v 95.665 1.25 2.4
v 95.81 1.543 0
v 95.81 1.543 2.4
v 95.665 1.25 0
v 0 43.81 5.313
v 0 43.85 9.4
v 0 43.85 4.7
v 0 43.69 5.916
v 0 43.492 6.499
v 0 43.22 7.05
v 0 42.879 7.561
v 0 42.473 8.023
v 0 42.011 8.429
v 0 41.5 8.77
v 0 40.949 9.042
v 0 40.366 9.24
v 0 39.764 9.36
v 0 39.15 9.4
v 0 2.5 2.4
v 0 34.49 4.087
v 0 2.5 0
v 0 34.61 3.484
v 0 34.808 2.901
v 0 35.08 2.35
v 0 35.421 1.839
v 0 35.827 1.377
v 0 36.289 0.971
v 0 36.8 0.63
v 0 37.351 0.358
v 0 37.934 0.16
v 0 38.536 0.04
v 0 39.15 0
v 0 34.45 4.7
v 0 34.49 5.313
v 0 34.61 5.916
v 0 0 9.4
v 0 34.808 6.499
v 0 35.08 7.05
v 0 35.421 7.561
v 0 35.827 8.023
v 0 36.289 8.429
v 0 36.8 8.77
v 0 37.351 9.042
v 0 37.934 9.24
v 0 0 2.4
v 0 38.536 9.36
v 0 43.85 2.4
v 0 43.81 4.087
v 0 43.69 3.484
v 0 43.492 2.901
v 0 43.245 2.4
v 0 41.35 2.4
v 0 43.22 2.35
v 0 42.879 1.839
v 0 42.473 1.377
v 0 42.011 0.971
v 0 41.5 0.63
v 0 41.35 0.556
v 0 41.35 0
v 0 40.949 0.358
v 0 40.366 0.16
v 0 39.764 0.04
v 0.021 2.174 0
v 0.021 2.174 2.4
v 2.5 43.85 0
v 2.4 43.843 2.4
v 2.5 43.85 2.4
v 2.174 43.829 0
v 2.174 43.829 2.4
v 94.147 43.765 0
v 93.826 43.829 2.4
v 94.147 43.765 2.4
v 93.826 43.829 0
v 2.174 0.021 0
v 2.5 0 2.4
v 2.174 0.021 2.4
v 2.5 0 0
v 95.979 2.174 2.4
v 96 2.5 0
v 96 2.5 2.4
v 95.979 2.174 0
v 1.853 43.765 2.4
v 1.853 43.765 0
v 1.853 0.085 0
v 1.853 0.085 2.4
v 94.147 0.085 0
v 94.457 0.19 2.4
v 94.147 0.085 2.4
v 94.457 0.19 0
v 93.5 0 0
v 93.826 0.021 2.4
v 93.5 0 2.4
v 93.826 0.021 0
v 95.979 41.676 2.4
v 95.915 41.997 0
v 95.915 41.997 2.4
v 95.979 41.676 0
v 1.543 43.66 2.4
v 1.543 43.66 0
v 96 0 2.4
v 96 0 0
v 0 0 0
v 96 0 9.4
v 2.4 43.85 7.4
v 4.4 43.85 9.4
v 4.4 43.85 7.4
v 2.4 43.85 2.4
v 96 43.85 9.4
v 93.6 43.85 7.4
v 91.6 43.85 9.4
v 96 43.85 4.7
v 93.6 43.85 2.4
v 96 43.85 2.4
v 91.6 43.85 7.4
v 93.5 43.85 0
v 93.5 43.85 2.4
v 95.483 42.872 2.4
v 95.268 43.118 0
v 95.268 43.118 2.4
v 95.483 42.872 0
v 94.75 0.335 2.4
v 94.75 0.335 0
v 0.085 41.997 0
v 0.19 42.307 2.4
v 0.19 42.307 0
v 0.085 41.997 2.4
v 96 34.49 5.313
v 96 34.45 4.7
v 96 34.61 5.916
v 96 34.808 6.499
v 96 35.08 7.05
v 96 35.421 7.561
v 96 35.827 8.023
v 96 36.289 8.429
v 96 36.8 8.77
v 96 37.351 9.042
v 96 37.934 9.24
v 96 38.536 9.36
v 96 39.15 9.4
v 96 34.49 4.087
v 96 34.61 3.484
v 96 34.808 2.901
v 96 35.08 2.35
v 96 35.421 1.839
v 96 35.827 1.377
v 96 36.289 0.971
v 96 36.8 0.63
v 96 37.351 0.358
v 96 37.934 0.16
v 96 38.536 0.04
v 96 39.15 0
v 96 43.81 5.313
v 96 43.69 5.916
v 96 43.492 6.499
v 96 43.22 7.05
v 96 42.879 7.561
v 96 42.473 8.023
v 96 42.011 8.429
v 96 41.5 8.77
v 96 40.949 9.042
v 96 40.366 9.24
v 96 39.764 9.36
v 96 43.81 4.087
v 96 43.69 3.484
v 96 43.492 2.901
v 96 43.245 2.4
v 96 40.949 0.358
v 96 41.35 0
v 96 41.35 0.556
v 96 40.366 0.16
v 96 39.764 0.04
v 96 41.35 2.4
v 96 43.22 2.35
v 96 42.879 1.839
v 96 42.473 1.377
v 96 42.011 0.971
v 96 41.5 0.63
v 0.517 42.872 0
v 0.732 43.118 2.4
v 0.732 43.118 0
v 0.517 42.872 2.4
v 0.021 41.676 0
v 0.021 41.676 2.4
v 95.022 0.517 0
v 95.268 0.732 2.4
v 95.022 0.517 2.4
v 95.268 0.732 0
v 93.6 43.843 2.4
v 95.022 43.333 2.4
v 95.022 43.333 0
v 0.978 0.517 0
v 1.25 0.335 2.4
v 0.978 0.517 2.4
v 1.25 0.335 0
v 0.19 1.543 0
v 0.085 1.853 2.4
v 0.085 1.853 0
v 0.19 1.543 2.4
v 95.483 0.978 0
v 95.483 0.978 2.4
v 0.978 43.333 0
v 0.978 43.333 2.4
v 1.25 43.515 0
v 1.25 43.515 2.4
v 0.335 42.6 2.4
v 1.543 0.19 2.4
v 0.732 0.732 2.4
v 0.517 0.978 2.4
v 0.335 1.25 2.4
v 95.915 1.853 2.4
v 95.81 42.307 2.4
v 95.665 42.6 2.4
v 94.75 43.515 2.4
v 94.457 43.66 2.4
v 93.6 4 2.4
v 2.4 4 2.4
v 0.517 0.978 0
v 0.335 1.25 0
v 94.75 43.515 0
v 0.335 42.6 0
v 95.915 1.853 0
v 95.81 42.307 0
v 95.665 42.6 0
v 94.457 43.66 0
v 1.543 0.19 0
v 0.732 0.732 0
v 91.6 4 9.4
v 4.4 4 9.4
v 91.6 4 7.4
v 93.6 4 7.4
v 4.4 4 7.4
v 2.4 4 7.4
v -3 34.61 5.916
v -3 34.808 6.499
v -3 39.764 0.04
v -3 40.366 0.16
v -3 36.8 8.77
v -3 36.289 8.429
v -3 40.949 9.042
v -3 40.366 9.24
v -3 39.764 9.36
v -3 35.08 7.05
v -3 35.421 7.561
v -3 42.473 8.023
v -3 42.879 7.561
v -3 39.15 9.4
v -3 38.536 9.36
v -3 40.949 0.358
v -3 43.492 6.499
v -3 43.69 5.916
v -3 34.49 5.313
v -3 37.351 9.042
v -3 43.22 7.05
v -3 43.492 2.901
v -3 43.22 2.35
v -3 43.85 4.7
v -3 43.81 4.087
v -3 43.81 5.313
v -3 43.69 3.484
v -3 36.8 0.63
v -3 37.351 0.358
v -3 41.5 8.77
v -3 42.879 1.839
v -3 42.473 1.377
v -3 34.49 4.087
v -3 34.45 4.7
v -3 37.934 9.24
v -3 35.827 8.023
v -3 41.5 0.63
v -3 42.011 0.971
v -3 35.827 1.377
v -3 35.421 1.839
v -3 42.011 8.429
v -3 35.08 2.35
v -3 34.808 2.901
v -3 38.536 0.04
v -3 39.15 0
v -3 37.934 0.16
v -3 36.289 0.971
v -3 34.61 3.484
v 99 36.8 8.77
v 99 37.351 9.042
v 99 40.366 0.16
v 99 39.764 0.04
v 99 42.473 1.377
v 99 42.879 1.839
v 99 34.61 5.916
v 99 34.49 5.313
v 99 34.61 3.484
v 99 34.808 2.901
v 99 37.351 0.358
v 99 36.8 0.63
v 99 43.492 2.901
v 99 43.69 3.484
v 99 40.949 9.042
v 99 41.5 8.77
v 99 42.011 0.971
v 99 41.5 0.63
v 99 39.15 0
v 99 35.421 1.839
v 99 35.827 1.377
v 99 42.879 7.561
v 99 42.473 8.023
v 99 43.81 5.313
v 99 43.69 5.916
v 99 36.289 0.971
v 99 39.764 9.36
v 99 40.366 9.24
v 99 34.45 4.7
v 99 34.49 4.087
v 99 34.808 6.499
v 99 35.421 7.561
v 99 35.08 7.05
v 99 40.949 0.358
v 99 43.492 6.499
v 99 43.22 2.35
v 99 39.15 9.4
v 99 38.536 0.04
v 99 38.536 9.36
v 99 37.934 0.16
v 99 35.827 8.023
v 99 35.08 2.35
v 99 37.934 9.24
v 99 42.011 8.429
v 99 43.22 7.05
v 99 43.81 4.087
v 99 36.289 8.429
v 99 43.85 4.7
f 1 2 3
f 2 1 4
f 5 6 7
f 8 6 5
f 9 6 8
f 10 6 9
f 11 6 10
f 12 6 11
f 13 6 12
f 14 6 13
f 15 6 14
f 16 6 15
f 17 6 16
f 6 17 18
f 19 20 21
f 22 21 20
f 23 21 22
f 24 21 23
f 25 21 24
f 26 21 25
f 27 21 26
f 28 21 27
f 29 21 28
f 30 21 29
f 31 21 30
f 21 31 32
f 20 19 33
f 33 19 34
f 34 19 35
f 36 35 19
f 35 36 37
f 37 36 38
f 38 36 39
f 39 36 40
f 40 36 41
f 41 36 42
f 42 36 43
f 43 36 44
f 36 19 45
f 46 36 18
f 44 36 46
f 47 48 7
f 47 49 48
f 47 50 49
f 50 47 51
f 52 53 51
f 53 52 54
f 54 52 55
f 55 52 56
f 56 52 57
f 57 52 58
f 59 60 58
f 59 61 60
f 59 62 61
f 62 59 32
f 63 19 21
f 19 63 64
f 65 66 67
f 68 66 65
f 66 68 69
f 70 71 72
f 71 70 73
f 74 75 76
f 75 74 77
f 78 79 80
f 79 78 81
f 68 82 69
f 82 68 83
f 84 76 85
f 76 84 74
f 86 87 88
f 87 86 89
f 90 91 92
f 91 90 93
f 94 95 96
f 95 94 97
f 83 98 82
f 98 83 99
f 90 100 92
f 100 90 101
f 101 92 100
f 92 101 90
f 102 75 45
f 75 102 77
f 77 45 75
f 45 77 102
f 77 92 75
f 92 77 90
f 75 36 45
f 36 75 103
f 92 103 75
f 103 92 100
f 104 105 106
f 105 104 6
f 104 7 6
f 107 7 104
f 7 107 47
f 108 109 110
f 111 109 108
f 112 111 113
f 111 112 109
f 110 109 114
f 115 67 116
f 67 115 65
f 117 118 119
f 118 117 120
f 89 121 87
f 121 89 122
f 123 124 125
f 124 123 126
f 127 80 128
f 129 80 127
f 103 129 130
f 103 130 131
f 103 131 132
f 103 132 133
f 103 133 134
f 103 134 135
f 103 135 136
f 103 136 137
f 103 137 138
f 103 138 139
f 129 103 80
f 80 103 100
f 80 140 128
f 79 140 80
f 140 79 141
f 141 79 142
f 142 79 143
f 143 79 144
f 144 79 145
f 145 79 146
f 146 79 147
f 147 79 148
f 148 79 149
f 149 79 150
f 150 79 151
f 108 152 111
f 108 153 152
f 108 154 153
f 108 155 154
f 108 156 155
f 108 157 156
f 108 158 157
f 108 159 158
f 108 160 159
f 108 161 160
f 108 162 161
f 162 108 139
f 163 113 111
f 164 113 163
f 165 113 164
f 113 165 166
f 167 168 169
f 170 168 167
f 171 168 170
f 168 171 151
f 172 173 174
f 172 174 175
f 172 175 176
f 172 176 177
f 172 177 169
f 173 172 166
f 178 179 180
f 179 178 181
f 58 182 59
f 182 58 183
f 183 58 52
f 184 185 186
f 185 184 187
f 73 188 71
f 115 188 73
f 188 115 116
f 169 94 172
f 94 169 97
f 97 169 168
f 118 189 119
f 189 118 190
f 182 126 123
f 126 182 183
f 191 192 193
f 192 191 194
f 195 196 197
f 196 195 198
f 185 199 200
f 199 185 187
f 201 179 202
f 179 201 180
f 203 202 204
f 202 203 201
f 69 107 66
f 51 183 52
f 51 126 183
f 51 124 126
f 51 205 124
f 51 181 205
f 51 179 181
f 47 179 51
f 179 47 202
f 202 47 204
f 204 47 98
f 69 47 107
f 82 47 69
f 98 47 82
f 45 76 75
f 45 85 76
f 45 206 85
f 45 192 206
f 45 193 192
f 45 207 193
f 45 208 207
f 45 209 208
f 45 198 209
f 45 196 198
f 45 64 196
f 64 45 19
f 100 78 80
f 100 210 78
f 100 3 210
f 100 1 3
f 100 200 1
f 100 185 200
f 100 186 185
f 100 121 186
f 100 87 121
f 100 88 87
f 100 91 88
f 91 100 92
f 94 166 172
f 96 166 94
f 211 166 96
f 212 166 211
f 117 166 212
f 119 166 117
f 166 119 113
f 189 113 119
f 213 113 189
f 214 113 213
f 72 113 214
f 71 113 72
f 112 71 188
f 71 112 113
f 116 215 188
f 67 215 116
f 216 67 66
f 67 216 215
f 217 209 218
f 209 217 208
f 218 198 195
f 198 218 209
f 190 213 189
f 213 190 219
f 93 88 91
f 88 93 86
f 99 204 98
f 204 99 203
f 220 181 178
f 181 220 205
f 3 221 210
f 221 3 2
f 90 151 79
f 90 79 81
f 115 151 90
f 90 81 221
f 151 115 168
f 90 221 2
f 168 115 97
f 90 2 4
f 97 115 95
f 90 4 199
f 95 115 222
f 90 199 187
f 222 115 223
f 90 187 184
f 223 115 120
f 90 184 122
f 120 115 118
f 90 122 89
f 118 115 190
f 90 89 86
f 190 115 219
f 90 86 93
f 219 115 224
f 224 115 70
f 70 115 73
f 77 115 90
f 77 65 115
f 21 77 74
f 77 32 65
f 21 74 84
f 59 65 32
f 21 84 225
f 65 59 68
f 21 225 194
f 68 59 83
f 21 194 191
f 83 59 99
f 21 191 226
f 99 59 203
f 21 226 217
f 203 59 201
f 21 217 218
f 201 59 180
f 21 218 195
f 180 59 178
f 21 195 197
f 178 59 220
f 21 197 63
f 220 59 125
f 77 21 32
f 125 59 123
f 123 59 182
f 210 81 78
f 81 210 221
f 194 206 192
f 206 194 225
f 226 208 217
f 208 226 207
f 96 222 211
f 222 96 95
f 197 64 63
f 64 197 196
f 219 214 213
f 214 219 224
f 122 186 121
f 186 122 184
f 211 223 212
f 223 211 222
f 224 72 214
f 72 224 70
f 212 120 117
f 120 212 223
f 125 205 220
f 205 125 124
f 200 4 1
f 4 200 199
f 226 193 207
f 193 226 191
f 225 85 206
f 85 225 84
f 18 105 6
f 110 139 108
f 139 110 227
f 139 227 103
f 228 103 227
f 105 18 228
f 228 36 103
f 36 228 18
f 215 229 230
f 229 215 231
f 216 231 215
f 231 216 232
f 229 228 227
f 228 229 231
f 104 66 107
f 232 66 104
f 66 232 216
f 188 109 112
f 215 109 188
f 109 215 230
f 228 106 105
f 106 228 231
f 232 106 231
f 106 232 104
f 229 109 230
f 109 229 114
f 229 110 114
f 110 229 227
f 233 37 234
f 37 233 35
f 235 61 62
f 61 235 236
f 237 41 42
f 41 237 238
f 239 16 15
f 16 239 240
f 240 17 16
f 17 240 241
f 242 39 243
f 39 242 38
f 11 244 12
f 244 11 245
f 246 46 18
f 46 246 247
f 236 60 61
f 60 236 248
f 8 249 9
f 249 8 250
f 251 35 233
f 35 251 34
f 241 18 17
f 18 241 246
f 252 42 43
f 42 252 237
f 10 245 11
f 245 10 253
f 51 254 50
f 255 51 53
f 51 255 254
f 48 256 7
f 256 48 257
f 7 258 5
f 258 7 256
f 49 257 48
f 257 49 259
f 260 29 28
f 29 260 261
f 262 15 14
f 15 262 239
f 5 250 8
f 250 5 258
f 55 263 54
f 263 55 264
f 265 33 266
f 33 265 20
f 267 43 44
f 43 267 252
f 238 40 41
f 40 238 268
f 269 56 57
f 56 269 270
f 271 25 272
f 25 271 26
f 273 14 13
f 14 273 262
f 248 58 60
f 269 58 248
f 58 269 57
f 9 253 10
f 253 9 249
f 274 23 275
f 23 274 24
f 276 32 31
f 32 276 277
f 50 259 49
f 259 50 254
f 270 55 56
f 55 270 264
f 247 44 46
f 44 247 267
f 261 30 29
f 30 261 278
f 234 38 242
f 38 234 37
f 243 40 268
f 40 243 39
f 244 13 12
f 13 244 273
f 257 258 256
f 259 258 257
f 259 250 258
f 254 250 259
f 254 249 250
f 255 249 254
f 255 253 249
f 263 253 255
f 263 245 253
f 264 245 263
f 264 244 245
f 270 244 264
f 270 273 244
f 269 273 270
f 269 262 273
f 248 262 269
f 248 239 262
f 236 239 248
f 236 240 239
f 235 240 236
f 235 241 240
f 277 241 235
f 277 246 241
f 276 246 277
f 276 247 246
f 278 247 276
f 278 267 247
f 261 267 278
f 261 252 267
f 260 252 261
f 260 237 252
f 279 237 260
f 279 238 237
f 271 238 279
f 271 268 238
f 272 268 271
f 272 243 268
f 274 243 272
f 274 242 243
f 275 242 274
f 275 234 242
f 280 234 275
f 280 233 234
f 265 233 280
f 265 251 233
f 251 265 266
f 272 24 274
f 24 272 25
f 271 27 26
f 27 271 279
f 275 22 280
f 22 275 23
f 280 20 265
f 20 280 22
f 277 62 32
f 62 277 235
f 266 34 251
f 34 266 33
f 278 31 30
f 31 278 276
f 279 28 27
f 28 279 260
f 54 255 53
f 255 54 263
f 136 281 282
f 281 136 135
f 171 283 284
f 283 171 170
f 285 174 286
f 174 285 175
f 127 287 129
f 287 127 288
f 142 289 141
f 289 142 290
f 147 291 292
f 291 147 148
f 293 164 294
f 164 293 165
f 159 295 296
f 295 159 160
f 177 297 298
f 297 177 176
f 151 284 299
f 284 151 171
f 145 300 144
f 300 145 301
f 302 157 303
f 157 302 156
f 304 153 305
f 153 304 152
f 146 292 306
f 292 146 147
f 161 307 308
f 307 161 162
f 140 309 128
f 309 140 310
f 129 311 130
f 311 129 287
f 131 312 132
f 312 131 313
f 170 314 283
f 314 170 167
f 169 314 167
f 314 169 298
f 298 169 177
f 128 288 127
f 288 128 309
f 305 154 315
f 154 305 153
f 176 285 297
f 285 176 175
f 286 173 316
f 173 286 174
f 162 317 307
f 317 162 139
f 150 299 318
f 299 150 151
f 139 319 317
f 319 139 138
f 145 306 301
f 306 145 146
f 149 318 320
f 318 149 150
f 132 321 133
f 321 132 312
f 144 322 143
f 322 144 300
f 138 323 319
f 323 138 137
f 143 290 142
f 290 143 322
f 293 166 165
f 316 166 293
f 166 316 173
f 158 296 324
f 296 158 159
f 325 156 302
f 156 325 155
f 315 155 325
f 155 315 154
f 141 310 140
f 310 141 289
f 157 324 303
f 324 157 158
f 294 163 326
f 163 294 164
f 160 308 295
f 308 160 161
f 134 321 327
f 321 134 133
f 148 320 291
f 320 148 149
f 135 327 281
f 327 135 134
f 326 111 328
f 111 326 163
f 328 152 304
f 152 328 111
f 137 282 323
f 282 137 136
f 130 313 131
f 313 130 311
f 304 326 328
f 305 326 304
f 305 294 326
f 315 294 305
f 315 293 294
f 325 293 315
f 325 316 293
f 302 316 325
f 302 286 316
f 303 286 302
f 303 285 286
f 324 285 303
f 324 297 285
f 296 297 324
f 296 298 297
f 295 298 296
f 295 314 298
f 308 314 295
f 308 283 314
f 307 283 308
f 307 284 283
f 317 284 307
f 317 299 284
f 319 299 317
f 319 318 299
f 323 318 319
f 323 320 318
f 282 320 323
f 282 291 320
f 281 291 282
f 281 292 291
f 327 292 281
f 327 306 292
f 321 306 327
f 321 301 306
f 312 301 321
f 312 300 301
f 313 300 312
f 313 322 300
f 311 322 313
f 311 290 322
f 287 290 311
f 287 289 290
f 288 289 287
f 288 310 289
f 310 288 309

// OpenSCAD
// Standalone 4.2" e-paper screen holder for MultiTimer Ext.
// Units: millimeters.
//
// This is only the display holder part. The lower adapter box will be modeled
// separately and can mount to this part through the bottom tabs.

$fn = 48;

/* [Mount Span] */

mount_span_w = 96.0; // [80:0.1:130]

/* [E-Ink Board] */

screen_board_h = 78.5; // [60:0.1:100]
screen_board_t = 2.0; // [0.8:0.1:4]
screen_clearance = 0.6; // [0.1:0.1:2]

/* [Holder Shape] */

holder_ratio = 0.50; // [0.25:0.05:0.90]
back_plate_t = 2.4; // [1.2:0.1:5]
bottom_stop_h = 4.0; // [1:0.5:12]
corner_r = 2.5; // [0:0.5:8]

/* [Slide-In Grooves] */

slot_gap = 5.0; // [2:0.1:10]
slot_wall = 2.4; // [1.2:0.1:6]
slot_lip = 2.0; // [0.8:0.1:5]
slot_lip_t = 2.0; // [0.8:0.1:8]

/* [Mounting Tabs] */

tab_enabled = true;
tab_w = 18; // [8:1:35]
tab_d = 10; // [5:1:25]
tab_t = 3; // [1.5:0.1:6]
tab_hole_d = 3.2; // [2:0.1:5]
tab_offset_x = 36; // [15:1:55]

/* [Optional Screen Screws] */

use_screen_screw_holes = false;
screen_screw_d = 2.2; // [1.2:0.1:4]
screen_screw_inset_x = 5.0; // [2:0.5:20]
screen_screw_inset_y = 5.0; // [2:0.5:20]

/* [Side Pins] */

side_pin_len = 3.0; // [1:0.5:10]

/* [Derived Values] */

part_z_h = back_plate_t + slot_gap + slot_lip_t;
side_pin_d = part_z_h;
holder_w = mount_span_w;
screen_board_w = mount_span_w - 2 * (slot_wall + screen_clearance);
holder_h = screen_board_h * holder_ratio + bottom_stop_h + screen_clearance;

module rounded_plate(w, h, t, r) {
    if(r <= 0) {
        cube([w, h, t]);
    } else {
        hull() {
            for(x = [r, w - r])
                for(y = [r, h - r])
                    translate([x, y, 0])
                        cylinder(h = t, r = r);
        }
    }
}

module screen_holder_body() {
    difference() {
        union() {
            // Half-height back plate. The board's upper half is unsupported.
            rounded_plate(holder_w, holder_h, back_plate_t, corner_r);

            // Bottom stop: the PCB rests on this after sliding into the grooves.
            translate([0, 0, back_plate_t])
                cube([holder_w, bottom_stop_h, slot_gap + slot_lip_t]);

            // Left and right outer groove walls.
            translate([0, 0, back_plate_t])
                cube([slot_wall, holder_h, slot_gap + slot_lip_t]);
            translate([holder_w - slot_wall, 0, back_plate_t])
                cube([slot_wall, holder_h, slot_gap + slot_lip_t]);

            // C-channel lips. These capture the front edge of the PCB.
            translate([slot_wall, bottom_stop_h, back_plate_t + slot_gap])
                cube([slot_lip, holder_h - bottom_stop_h, slot_lip_t]);
            translate([holder_w - slot_wall - slot_lip, bottom_stop_h, back_plate_t + slot_gap])
                cube([slot_lip, holder_h - bottom_stop_h, slot_lip_t]);
        }

        if(use_screen_screw_holes) {
            for(x = [
                    slot_wall + screen_clearance + screen_screw_inset_x,
                    slot_wall + screen_clearance + screen_board_w - screen_screw_inset_x
                ])
                for(y = [
                        bottom_stop_h + screen_screw_inset_y,
                        bottom_stop_h + screen_board_h * holder_ratio - screen_screw_inset_y
                    ])
                    translate([x, y, -0.2])
                        cylinder(h = back_plate_t + slot_gap + slot_lip_t + 0.6, d = screen_screw_d);
        }
    }
}

module mounting_tabs() {
    if(tab_enabled) {
        // Rear rail ties tabs into the holder body and gives the next enclosure
        // part a flat mating surface.
        translate([0, -tab_d, 0])
            cube([holder_w, tab_d, tab_t]);

        for(x = [holder_w / 2 - tab_offset_x, holder_w / 2 + tab_offset_x]) {
            difference() {
                translate([x - tab_w / 2, -tab_d, 0])
                    cube([tab_w, tab_d, tab_t]);
                translate([x, -tab_d / 2, -0.2])
                    cylinder(h = tab_t + 0.4, d = tab_hole_d);
            }
        }
    }
}

module side_edge_pins() {
    // Pins sit on the outer side faces only; aligned to the top edge of the holder.
    pin_y = holder_h - side_pin_d / 2;

    translate([0, pin_y, part_z_h / 2])
        rotate([0, -90, 0])
            cylinder(h = side_pin_len, d = side_pin_d);

    translate([holder_w, pin_y, part_z_h / 2])
        rotate([0, 90, 0])
            cylinder(h = side_pin_len, d = side_pin_d);
}

module part() {
    screen_holder_body();
    mounting_tabs();
    side_edge_pins();
}

// Clip negative tabs; keep side pins that extend beyond the holder width.
intersection() {
    part();
    translate([-side_pin_len, 0, 0])
        cube([holder_w + 2 * side_pin_len, holder_h, part_z_h + tab_t + 1]);
}
